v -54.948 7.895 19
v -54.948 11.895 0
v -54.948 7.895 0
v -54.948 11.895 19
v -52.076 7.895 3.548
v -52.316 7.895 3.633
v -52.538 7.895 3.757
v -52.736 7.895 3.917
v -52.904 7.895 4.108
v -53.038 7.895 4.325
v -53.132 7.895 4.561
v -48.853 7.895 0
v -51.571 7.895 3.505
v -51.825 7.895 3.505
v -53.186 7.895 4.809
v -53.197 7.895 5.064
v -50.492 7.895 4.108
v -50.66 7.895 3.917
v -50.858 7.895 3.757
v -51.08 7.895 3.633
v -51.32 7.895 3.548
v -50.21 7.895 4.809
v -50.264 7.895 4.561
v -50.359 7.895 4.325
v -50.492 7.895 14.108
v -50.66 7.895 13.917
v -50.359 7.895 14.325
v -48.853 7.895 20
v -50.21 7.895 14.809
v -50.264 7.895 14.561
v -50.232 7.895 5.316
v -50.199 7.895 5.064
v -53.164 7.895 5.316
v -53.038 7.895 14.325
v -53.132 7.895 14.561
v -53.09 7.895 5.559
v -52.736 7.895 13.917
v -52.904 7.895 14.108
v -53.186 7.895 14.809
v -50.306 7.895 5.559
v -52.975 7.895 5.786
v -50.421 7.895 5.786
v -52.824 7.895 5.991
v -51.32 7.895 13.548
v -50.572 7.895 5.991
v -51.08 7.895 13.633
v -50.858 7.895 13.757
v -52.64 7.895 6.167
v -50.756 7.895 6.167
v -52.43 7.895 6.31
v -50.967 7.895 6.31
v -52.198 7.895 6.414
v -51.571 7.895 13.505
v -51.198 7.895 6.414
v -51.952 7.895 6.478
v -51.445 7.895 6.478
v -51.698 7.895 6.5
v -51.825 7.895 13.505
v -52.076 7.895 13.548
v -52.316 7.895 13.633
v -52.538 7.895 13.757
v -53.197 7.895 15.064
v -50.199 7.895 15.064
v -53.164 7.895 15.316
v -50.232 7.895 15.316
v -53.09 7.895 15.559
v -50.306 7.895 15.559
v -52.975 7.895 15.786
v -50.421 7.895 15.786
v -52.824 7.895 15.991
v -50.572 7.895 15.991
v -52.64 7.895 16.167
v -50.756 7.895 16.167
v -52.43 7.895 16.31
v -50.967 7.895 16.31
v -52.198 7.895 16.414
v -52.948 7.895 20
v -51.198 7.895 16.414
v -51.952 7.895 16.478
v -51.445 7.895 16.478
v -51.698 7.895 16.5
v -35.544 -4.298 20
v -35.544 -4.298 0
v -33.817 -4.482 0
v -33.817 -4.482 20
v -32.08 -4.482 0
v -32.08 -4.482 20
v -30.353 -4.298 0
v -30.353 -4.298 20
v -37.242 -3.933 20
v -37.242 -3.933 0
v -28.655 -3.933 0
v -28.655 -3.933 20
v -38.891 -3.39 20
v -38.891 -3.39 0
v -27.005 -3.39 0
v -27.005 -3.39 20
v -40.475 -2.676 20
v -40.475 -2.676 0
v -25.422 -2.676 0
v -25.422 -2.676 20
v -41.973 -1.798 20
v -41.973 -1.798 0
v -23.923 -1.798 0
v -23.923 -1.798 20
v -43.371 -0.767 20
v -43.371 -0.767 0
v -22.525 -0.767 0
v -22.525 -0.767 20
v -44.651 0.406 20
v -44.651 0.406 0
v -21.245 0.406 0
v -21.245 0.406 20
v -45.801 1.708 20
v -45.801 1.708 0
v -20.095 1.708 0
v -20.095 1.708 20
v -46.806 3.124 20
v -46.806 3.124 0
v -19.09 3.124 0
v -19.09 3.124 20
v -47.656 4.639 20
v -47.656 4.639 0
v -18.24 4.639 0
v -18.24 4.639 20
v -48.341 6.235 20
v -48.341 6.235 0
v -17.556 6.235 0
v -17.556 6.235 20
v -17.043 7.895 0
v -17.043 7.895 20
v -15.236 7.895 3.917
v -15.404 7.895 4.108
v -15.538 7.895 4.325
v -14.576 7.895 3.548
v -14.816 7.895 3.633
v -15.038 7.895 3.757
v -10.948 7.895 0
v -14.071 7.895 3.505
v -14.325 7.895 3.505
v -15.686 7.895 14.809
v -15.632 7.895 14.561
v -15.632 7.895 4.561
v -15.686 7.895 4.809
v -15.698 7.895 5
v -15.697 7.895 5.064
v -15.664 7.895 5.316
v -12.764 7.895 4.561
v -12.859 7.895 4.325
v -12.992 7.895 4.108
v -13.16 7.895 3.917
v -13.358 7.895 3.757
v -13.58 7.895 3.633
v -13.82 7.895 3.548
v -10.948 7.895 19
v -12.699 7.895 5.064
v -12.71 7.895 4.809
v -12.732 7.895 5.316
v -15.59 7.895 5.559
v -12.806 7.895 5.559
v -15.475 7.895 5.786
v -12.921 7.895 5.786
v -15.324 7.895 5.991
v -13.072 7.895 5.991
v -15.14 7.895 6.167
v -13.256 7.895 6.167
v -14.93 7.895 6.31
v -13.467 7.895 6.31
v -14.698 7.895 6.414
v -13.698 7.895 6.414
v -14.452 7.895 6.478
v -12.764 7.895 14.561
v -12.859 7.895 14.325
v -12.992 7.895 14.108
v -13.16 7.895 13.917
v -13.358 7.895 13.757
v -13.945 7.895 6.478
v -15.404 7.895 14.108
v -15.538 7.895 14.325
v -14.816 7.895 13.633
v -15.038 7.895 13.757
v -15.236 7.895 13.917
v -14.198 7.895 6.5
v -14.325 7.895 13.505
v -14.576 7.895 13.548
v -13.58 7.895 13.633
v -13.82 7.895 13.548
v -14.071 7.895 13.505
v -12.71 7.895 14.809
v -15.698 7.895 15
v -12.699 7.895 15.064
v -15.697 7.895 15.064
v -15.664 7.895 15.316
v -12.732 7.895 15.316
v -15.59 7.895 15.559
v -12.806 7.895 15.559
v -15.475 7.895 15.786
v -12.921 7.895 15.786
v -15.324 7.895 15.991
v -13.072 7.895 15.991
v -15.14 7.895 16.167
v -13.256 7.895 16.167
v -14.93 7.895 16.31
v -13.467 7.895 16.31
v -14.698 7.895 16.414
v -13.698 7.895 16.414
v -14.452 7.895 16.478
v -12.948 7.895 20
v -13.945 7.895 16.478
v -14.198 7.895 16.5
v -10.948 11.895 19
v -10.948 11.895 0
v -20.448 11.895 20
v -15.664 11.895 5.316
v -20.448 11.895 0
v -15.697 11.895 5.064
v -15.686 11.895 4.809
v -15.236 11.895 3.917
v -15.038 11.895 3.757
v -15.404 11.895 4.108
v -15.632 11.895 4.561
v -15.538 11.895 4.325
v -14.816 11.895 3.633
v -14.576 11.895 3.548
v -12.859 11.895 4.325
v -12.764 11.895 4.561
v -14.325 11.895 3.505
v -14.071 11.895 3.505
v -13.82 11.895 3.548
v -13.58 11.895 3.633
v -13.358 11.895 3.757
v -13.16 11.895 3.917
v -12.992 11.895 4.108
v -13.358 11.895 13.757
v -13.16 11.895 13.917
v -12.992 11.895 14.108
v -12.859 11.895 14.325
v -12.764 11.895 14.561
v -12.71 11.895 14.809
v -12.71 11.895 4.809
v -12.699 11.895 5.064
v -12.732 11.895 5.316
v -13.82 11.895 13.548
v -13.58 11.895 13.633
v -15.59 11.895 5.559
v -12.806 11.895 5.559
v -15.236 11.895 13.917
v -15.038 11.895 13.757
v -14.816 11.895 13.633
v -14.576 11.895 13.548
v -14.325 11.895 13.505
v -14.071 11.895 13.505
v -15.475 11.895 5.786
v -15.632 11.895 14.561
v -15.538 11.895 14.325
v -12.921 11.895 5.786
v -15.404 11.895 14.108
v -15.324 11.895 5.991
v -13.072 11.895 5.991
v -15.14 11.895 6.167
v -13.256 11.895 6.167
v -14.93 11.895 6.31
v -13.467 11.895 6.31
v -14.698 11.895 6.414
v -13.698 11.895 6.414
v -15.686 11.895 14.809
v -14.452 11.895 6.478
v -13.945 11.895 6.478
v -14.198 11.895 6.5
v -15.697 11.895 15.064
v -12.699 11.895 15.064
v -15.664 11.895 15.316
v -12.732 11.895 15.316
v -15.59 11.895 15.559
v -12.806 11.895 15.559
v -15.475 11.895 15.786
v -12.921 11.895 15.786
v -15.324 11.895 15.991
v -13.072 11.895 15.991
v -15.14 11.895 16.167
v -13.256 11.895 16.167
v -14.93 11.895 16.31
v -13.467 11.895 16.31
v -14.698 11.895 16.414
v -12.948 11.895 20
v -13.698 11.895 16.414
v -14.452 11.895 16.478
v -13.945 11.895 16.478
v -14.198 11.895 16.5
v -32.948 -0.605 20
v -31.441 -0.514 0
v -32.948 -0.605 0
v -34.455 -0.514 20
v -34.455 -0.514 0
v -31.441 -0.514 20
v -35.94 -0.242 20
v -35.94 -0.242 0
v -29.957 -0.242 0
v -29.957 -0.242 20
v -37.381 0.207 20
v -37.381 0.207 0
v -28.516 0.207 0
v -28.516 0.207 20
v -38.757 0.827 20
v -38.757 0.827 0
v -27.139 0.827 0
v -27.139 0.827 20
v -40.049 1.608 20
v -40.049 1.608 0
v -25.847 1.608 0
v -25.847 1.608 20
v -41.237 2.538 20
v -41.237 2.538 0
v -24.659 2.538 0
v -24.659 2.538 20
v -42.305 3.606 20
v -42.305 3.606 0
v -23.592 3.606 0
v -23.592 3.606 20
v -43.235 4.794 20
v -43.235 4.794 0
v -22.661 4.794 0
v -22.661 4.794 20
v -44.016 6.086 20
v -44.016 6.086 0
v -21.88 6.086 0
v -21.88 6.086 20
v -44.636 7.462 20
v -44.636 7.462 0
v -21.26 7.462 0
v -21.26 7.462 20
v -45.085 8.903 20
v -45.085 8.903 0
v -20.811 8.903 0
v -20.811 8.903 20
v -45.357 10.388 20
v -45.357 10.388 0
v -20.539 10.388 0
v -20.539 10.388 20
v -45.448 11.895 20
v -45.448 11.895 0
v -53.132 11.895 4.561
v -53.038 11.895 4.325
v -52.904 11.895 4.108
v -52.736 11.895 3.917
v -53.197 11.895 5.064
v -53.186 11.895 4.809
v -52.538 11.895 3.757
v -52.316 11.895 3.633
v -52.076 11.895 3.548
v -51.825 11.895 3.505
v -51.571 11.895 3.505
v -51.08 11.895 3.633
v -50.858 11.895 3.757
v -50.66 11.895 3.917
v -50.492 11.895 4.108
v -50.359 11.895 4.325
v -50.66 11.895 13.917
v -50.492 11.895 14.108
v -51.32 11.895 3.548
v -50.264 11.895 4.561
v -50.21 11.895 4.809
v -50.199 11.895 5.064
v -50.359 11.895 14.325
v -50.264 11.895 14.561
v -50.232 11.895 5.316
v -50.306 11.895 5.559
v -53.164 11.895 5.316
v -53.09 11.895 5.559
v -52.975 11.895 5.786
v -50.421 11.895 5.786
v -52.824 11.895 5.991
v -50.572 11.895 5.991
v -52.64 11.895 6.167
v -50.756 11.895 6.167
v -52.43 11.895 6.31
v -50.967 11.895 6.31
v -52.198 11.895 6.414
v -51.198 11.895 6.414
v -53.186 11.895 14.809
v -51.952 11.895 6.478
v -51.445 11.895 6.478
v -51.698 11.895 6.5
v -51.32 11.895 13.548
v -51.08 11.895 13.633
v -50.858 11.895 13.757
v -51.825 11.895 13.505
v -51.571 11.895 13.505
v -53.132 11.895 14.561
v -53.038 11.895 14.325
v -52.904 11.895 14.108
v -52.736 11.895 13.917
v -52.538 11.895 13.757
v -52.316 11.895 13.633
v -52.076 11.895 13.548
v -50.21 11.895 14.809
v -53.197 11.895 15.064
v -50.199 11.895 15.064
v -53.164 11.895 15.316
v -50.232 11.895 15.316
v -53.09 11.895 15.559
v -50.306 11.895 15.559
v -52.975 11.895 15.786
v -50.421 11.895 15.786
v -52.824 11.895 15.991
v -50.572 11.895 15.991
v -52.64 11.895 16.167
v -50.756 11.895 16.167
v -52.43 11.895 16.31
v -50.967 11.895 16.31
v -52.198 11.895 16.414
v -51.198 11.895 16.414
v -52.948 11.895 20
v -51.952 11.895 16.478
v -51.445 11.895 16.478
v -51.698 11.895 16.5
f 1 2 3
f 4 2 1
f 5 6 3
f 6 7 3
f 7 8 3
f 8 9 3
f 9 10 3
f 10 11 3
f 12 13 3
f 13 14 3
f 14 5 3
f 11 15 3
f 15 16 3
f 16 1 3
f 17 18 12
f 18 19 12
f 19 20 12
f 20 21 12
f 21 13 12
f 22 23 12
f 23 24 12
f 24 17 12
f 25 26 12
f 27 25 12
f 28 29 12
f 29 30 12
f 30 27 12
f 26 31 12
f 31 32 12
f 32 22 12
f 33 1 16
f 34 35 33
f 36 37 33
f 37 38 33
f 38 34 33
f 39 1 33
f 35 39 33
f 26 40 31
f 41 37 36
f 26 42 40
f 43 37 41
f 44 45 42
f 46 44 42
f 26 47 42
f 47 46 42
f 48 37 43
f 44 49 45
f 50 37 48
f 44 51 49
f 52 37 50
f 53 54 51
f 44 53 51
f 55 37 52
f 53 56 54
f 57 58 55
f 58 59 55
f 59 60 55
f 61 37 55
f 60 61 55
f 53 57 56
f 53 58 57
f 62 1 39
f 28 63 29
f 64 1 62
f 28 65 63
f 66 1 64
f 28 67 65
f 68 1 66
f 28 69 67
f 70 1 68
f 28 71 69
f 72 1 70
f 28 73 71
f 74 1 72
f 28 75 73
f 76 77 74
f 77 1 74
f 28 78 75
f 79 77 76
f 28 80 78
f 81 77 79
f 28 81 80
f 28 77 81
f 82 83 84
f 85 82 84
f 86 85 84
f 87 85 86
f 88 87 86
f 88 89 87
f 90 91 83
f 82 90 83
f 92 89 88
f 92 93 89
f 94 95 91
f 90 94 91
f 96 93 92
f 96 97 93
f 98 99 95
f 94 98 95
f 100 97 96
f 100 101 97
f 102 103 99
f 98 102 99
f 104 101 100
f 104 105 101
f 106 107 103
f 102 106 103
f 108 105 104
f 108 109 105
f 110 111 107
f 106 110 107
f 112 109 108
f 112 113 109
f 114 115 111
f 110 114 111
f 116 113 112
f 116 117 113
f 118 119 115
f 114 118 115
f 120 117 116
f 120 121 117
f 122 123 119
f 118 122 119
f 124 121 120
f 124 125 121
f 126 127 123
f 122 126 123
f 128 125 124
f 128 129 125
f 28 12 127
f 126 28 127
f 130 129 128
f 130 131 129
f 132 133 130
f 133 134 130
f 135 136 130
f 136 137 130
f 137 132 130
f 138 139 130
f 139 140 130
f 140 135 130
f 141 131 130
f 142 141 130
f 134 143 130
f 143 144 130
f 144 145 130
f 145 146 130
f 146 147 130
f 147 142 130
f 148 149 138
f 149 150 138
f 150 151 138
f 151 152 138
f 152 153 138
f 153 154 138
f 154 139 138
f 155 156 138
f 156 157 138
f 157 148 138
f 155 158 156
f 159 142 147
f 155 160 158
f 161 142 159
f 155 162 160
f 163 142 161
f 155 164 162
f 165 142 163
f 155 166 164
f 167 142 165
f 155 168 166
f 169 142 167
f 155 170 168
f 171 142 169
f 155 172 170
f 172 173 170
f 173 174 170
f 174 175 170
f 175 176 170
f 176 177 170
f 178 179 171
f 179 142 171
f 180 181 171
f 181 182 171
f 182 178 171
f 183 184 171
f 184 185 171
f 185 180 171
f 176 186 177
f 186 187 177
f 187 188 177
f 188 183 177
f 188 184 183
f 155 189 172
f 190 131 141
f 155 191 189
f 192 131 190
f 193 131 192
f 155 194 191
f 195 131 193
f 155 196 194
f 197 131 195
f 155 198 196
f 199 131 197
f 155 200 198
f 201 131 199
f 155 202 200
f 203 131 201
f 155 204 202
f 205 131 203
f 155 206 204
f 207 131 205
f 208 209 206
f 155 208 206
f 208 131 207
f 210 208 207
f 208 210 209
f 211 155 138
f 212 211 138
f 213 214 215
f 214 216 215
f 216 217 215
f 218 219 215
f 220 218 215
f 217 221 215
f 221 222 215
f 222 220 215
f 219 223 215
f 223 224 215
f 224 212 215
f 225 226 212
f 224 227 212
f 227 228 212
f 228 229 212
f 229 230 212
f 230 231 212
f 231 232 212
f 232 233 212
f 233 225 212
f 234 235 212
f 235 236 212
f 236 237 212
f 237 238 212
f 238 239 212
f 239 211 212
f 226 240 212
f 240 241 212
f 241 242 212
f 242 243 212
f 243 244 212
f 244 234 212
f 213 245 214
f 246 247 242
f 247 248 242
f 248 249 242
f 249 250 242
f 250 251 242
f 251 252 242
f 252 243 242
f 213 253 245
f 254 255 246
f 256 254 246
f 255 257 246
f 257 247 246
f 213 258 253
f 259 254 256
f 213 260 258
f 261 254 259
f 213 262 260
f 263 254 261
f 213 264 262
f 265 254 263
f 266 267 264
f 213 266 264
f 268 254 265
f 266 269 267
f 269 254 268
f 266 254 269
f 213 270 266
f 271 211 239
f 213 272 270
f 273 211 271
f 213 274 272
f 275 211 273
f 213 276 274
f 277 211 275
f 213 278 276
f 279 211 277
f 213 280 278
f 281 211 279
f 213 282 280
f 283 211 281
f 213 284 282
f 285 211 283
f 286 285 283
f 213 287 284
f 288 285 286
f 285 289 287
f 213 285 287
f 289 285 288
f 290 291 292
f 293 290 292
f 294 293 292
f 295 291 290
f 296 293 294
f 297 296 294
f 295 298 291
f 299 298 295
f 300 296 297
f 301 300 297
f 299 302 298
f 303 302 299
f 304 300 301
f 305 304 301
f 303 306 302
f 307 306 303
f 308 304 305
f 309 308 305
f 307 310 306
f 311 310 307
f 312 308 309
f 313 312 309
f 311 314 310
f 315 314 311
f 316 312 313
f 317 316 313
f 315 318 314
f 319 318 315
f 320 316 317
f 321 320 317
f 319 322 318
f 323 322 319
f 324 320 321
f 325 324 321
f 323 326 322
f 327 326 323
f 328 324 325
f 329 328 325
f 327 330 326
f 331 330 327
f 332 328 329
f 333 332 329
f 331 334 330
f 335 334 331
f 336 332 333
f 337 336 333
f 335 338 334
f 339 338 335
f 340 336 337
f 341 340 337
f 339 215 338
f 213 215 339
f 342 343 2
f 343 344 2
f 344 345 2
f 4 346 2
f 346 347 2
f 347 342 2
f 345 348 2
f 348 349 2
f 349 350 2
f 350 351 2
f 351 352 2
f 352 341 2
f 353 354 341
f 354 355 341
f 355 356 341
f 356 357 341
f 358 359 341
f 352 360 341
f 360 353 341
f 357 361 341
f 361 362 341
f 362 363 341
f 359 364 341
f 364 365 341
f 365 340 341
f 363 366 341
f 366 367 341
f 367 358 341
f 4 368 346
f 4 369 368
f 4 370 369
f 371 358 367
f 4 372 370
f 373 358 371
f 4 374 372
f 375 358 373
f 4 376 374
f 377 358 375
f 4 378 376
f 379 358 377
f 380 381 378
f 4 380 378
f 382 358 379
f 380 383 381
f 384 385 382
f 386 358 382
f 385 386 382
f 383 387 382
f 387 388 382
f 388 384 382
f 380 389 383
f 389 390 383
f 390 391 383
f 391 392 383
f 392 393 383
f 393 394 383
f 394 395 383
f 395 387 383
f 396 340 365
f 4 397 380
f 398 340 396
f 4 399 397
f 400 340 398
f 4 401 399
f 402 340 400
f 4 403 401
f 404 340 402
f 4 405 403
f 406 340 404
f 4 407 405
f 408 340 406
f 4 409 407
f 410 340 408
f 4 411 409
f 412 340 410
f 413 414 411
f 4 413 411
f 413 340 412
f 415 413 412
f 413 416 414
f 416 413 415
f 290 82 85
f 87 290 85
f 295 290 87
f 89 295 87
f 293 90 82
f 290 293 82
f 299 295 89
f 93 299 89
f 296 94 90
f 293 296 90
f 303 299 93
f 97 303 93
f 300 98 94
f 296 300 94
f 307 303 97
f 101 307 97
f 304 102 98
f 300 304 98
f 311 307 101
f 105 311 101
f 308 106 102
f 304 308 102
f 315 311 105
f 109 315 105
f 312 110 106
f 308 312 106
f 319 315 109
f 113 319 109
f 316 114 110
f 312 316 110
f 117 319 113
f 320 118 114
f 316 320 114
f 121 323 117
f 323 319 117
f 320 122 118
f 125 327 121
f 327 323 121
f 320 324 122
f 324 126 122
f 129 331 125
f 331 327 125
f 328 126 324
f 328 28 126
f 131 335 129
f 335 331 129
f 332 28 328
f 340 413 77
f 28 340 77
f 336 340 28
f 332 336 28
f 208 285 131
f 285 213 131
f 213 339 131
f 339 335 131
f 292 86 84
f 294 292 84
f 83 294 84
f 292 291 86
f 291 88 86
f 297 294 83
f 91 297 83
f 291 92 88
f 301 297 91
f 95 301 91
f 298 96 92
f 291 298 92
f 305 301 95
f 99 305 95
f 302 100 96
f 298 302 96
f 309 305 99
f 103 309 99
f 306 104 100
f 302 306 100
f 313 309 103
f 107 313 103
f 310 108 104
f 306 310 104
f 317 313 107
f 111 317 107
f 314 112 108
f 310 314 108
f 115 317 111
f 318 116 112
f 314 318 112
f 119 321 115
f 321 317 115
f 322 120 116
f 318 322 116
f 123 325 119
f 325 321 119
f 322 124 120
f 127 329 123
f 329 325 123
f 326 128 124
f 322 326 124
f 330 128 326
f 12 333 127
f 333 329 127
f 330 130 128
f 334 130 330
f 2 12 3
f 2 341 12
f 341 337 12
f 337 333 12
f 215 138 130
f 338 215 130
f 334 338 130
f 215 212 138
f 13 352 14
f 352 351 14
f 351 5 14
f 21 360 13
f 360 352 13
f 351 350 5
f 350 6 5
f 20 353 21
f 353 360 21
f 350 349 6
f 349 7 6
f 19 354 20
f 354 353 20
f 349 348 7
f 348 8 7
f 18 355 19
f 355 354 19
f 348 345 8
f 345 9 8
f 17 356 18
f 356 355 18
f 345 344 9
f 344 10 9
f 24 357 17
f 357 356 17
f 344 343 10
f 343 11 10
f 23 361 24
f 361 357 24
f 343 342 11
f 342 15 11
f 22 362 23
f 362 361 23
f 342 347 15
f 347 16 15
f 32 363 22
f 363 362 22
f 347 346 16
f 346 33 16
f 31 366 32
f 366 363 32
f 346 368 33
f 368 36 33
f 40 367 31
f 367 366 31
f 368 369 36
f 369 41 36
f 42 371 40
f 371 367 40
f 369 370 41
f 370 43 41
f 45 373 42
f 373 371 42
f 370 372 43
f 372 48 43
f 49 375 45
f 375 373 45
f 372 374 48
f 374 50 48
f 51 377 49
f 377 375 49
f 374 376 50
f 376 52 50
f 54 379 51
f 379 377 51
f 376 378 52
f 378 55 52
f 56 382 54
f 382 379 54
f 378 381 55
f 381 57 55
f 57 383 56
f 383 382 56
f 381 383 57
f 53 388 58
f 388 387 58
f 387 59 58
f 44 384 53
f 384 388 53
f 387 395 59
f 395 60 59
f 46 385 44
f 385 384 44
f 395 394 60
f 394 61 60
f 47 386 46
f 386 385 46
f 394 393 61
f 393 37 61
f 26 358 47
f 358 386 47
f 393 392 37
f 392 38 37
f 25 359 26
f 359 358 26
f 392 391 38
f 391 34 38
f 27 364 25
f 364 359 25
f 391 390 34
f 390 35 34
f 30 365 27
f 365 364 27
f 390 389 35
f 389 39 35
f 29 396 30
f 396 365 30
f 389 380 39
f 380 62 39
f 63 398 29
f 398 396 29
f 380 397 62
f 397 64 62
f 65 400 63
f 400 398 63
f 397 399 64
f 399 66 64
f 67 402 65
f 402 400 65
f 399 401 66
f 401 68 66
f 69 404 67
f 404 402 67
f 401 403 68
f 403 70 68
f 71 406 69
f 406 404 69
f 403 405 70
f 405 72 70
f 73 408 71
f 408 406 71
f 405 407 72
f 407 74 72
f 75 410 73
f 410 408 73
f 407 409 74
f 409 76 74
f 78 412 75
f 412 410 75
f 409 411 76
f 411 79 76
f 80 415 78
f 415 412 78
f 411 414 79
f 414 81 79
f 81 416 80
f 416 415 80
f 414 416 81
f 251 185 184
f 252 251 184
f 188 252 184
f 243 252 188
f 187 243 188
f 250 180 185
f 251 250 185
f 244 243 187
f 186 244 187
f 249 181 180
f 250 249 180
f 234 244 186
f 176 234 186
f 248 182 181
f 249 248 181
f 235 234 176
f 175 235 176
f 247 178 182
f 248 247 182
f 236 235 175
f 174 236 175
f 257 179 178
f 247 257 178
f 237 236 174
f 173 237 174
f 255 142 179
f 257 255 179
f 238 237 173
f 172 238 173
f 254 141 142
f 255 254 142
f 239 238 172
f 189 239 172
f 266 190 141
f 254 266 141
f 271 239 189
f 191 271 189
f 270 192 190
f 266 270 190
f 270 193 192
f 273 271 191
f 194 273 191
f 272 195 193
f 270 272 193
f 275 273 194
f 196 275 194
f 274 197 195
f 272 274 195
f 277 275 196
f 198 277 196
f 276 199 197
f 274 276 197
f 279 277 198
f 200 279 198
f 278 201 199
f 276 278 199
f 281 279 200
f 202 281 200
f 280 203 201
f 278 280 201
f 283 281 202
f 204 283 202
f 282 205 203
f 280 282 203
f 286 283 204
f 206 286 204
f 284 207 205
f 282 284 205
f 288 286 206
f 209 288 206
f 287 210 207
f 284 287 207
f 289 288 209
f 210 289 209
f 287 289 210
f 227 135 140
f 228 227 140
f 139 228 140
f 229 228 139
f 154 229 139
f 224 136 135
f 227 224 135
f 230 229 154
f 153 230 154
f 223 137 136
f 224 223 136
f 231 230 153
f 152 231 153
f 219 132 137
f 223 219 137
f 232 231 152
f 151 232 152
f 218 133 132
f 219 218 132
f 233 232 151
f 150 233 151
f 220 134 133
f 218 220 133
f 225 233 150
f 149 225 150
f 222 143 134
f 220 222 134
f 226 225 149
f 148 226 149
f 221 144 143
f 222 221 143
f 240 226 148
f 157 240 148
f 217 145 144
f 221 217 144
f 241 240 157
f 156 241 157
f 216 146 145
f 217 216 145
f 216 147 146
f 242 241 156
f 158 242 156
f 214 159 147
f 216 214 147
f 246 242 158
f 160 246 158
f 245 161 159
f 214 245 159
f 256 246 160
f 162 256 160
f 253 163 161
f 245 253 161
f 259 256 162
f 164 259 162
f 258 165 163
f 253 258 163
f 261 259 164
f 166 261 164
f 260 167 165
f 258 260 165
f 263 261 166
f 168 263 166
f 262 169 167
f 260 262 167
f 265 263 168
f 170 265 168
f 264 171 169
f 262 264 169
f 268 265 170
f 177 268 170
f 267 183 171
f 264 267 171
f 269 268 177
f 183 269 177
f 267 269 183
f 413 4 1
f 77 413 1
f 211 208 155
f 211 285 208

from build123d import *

# Parameters (mm, degrees)
RESSALTO_EXTRUS_O1_DEPTH = 20
ESBO_O2_R                = 1.5
CORTE_EXTRUS_O1_DEPTH    = 61.731016524
CORTE_EXTRUS_O2_DEPTH    = 61.731016524


with BuildPart() as part:
    # Esboço1 → Ressalto-extrusão1 (new body)
    with BuildSketch(Plane.XY):
        with BuildLine():
            Line((-54.948124335, 11.894856768), (-45.448124335, 11.894856768))
            ThreePointArc((-45.448124335, 11.894856768), (-32.948124335, -0.605143232), (-20.448124335, 11.894856768))
            Line((-20.448124335, 11.894856768), (-10.948124335, 11.894856768))
            Line((-10.948124335, 11.894856768), (-10.948124335, 7.894856768))
            Line((-10.948124335, 7.894856768), (-17.043408054, 7.894856768))
            ThreePointArc((-17.043408054, 7.894856768), (-32.948124335, -4.505143232), (-48.852840617, 7.894856768))
            Line((-48.852840617, 7.894856768), (-54.948124335, 7.894856768))
            Line((-54.948124335, 7.894856768), (-54.948124335, 11.894856768))
        make_face()
    extrude(amount=RESSALTO_EXTRUS_O1_DEPTH)

    # Esboço2 → Corte-extrusão1 (cut, through all)
    with BuildSketch(Plane(origin=(0, 11.894856768, 0), x_dir=(1, 0, 0), z_dir=(0, 1, 0))):
        with Locations(Location((-51.698124335, -5, 0), (0, 0, 270))):
            Circle(ESBO_O2_R)
        with Locations(Location((-51.698124335, -15, 0), (0, 0, 270))):
            Circle(ESBO_O2_R)
        with Locations(Location((-14.198124335, -5, 0), (0, 0, 270))):
            Circle(ESBO_O2_R)
        with Locations(Location((-14.198124335, -15, 0), (0, 0, 270))):
            Circle(ESBO_O2_R)
    extrude(amount=-CORTE_EXTRUS_O1_DEPTH, mode=Mode.SUBTRACT)

    # Esboço3 → Corte-extrusão2 (cut, through all)
    with BuildSketch(Plane(origin=(0, 11.894856768, 0), x_dir=(1, 0, 0), z_dir=(0, 1, 0))):
        Polygon((-10.948124335, -21.140031795), (-8.775432295, -20.480907324), (-9.177542531, -19.85151739), (-10.948124335, -19), (-12.948124335, -20), (-13.238837314, -21.140031795), align=None)
        Polygon((-54.948124335, -19), (-52.948124335, -20), (-52.948124335, -22.628376124), (-56.762312397, -22.628376124), (-56.762312397, -19), align=None)
    extrude(amount=-CORTE_EXTRUS_O2_DEPTH, mode=Mode.SUBTRACT)


solid = part.part
